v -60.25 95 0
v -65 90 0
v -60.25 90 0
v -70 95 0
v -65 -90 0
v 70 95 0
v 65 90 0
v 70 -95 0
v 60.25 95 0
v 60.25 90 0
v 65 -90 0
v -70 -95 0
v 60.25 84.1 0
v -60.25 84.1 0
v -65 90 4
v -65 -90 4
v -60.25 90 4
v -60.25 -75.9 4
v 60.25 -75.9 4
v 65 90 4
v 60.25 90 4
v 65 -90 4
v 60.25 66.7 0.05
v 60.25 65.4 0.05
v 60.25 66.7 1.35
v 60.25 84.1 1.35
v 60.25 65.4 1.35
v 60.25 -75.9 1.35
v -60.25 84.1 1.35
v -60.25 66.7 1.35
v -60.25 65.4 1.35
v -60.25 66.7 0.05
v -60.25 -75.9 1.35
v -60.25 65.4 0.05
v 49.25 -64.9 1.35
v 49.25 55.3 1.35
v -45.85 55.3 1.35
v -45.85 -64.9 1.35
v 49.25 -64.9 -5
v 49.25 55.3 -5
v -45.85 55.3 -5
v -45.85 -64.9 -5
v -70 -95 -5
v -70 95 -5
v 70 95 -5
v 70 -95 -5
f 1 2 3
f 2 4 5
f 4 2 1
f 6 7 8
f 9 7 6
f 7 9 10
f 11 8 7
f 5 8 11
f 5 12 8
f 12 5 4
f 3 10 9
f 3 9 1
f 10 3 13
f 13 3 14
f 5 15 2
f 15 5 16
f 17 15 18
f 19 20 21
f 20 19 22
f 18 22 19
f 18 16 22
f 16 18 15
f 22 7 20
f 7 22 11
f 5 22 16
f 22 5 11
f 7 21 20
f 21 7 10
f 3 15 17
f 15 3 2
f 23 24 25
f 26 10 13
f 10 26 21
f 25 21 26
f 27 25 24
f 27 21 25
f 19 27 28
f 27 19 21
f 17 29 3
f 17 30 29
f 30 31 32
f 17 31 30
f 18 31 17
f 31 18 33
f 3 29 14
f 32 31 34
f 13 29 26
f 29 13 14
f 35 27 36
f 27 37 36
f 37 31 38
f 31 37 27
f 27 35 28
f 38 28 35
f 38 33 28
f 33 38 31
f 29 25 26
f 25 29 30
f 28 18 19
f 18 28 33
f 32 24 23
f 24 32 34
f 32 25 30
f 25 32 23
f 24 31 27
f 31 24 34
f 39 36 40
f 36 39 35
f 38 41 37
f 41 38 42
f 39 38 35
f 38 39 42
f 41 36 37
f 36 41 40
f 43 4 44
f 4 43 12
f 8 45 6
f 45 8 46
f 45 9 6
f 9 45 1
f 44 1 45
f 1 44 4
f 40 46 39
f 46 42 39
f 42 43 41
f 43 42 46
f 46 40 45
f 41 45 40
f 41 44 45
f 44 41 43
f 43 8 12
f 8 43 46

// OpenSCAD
module film_holder() {
    // standart film holder size
    // https://www.pinterest.co.uk/pin/392024342563219543/visual-search/?x=10&y=10&w=530&h=453&cropSource=6
    x_1 = 120.5;
    y_1 = 173.0;
    
    y_2 = 160;
    z_1 = 14.5/2;
    z_2 = 11.8/2;
    
    y_3_w = 1.3;
    y_3 = 141.3;
    z_3 = 1.3+z_2;
    
    x_c_offs = 11.0;
    y_c_offs = 15.8;
    
    x_c = 95.1;
    y_c = 120.2;
    z_c = z_2 + 20;
    translate([x_1/2, -(y_c/2+y_c_offs), z_1])
    rotate([0,180,0])
    union() {
        translate([0, y_2, 0])
            cube([x_1, y_1-y_2, z_1]);
        cube([x_1, y_2, z_2]);
        translate([0, y_3, 0])
            cube([x_1, y_3_w, z_3]);
        translate([x_c_offs, x_c_offs, 0])
            cube([x_c, y_c, z_c]);
    }
} 

module frame() {
    side = 200;
    ext_side = 210;
    int_size = 180;
    height_1 = 10;
    height_2 = 6;
    
    film_h_x = 130;
    film_h_y = 180;
    film_h_z = 5;
    
    translate([0,0, -height_2])
    union() {
        translate([0, 0, height_2/2])
            cube([ext_side, ext_side, height_2], center=true);
        translate([0, 0, -height_1/2])
            difference() {
                cube([side, side, height_1], center=true);
                cube([int_size, int_size, height_1], center=true);
            }
        translate([0, 0, film_h_z/2 + height_1/2])
           cube([film_h_x, film_h_y, film_h_z], center=true);
    }
    
}

module frame_with_film_holder_container() {
    difference() {
        frame();
        film_holder();
    }
}

module test_print() {
    intersection() {
        cube([140, 190, 10], center=true);
        frame_with_film_holder_container();
    }
}

//frame_with_film_holder_container();
test_print();
